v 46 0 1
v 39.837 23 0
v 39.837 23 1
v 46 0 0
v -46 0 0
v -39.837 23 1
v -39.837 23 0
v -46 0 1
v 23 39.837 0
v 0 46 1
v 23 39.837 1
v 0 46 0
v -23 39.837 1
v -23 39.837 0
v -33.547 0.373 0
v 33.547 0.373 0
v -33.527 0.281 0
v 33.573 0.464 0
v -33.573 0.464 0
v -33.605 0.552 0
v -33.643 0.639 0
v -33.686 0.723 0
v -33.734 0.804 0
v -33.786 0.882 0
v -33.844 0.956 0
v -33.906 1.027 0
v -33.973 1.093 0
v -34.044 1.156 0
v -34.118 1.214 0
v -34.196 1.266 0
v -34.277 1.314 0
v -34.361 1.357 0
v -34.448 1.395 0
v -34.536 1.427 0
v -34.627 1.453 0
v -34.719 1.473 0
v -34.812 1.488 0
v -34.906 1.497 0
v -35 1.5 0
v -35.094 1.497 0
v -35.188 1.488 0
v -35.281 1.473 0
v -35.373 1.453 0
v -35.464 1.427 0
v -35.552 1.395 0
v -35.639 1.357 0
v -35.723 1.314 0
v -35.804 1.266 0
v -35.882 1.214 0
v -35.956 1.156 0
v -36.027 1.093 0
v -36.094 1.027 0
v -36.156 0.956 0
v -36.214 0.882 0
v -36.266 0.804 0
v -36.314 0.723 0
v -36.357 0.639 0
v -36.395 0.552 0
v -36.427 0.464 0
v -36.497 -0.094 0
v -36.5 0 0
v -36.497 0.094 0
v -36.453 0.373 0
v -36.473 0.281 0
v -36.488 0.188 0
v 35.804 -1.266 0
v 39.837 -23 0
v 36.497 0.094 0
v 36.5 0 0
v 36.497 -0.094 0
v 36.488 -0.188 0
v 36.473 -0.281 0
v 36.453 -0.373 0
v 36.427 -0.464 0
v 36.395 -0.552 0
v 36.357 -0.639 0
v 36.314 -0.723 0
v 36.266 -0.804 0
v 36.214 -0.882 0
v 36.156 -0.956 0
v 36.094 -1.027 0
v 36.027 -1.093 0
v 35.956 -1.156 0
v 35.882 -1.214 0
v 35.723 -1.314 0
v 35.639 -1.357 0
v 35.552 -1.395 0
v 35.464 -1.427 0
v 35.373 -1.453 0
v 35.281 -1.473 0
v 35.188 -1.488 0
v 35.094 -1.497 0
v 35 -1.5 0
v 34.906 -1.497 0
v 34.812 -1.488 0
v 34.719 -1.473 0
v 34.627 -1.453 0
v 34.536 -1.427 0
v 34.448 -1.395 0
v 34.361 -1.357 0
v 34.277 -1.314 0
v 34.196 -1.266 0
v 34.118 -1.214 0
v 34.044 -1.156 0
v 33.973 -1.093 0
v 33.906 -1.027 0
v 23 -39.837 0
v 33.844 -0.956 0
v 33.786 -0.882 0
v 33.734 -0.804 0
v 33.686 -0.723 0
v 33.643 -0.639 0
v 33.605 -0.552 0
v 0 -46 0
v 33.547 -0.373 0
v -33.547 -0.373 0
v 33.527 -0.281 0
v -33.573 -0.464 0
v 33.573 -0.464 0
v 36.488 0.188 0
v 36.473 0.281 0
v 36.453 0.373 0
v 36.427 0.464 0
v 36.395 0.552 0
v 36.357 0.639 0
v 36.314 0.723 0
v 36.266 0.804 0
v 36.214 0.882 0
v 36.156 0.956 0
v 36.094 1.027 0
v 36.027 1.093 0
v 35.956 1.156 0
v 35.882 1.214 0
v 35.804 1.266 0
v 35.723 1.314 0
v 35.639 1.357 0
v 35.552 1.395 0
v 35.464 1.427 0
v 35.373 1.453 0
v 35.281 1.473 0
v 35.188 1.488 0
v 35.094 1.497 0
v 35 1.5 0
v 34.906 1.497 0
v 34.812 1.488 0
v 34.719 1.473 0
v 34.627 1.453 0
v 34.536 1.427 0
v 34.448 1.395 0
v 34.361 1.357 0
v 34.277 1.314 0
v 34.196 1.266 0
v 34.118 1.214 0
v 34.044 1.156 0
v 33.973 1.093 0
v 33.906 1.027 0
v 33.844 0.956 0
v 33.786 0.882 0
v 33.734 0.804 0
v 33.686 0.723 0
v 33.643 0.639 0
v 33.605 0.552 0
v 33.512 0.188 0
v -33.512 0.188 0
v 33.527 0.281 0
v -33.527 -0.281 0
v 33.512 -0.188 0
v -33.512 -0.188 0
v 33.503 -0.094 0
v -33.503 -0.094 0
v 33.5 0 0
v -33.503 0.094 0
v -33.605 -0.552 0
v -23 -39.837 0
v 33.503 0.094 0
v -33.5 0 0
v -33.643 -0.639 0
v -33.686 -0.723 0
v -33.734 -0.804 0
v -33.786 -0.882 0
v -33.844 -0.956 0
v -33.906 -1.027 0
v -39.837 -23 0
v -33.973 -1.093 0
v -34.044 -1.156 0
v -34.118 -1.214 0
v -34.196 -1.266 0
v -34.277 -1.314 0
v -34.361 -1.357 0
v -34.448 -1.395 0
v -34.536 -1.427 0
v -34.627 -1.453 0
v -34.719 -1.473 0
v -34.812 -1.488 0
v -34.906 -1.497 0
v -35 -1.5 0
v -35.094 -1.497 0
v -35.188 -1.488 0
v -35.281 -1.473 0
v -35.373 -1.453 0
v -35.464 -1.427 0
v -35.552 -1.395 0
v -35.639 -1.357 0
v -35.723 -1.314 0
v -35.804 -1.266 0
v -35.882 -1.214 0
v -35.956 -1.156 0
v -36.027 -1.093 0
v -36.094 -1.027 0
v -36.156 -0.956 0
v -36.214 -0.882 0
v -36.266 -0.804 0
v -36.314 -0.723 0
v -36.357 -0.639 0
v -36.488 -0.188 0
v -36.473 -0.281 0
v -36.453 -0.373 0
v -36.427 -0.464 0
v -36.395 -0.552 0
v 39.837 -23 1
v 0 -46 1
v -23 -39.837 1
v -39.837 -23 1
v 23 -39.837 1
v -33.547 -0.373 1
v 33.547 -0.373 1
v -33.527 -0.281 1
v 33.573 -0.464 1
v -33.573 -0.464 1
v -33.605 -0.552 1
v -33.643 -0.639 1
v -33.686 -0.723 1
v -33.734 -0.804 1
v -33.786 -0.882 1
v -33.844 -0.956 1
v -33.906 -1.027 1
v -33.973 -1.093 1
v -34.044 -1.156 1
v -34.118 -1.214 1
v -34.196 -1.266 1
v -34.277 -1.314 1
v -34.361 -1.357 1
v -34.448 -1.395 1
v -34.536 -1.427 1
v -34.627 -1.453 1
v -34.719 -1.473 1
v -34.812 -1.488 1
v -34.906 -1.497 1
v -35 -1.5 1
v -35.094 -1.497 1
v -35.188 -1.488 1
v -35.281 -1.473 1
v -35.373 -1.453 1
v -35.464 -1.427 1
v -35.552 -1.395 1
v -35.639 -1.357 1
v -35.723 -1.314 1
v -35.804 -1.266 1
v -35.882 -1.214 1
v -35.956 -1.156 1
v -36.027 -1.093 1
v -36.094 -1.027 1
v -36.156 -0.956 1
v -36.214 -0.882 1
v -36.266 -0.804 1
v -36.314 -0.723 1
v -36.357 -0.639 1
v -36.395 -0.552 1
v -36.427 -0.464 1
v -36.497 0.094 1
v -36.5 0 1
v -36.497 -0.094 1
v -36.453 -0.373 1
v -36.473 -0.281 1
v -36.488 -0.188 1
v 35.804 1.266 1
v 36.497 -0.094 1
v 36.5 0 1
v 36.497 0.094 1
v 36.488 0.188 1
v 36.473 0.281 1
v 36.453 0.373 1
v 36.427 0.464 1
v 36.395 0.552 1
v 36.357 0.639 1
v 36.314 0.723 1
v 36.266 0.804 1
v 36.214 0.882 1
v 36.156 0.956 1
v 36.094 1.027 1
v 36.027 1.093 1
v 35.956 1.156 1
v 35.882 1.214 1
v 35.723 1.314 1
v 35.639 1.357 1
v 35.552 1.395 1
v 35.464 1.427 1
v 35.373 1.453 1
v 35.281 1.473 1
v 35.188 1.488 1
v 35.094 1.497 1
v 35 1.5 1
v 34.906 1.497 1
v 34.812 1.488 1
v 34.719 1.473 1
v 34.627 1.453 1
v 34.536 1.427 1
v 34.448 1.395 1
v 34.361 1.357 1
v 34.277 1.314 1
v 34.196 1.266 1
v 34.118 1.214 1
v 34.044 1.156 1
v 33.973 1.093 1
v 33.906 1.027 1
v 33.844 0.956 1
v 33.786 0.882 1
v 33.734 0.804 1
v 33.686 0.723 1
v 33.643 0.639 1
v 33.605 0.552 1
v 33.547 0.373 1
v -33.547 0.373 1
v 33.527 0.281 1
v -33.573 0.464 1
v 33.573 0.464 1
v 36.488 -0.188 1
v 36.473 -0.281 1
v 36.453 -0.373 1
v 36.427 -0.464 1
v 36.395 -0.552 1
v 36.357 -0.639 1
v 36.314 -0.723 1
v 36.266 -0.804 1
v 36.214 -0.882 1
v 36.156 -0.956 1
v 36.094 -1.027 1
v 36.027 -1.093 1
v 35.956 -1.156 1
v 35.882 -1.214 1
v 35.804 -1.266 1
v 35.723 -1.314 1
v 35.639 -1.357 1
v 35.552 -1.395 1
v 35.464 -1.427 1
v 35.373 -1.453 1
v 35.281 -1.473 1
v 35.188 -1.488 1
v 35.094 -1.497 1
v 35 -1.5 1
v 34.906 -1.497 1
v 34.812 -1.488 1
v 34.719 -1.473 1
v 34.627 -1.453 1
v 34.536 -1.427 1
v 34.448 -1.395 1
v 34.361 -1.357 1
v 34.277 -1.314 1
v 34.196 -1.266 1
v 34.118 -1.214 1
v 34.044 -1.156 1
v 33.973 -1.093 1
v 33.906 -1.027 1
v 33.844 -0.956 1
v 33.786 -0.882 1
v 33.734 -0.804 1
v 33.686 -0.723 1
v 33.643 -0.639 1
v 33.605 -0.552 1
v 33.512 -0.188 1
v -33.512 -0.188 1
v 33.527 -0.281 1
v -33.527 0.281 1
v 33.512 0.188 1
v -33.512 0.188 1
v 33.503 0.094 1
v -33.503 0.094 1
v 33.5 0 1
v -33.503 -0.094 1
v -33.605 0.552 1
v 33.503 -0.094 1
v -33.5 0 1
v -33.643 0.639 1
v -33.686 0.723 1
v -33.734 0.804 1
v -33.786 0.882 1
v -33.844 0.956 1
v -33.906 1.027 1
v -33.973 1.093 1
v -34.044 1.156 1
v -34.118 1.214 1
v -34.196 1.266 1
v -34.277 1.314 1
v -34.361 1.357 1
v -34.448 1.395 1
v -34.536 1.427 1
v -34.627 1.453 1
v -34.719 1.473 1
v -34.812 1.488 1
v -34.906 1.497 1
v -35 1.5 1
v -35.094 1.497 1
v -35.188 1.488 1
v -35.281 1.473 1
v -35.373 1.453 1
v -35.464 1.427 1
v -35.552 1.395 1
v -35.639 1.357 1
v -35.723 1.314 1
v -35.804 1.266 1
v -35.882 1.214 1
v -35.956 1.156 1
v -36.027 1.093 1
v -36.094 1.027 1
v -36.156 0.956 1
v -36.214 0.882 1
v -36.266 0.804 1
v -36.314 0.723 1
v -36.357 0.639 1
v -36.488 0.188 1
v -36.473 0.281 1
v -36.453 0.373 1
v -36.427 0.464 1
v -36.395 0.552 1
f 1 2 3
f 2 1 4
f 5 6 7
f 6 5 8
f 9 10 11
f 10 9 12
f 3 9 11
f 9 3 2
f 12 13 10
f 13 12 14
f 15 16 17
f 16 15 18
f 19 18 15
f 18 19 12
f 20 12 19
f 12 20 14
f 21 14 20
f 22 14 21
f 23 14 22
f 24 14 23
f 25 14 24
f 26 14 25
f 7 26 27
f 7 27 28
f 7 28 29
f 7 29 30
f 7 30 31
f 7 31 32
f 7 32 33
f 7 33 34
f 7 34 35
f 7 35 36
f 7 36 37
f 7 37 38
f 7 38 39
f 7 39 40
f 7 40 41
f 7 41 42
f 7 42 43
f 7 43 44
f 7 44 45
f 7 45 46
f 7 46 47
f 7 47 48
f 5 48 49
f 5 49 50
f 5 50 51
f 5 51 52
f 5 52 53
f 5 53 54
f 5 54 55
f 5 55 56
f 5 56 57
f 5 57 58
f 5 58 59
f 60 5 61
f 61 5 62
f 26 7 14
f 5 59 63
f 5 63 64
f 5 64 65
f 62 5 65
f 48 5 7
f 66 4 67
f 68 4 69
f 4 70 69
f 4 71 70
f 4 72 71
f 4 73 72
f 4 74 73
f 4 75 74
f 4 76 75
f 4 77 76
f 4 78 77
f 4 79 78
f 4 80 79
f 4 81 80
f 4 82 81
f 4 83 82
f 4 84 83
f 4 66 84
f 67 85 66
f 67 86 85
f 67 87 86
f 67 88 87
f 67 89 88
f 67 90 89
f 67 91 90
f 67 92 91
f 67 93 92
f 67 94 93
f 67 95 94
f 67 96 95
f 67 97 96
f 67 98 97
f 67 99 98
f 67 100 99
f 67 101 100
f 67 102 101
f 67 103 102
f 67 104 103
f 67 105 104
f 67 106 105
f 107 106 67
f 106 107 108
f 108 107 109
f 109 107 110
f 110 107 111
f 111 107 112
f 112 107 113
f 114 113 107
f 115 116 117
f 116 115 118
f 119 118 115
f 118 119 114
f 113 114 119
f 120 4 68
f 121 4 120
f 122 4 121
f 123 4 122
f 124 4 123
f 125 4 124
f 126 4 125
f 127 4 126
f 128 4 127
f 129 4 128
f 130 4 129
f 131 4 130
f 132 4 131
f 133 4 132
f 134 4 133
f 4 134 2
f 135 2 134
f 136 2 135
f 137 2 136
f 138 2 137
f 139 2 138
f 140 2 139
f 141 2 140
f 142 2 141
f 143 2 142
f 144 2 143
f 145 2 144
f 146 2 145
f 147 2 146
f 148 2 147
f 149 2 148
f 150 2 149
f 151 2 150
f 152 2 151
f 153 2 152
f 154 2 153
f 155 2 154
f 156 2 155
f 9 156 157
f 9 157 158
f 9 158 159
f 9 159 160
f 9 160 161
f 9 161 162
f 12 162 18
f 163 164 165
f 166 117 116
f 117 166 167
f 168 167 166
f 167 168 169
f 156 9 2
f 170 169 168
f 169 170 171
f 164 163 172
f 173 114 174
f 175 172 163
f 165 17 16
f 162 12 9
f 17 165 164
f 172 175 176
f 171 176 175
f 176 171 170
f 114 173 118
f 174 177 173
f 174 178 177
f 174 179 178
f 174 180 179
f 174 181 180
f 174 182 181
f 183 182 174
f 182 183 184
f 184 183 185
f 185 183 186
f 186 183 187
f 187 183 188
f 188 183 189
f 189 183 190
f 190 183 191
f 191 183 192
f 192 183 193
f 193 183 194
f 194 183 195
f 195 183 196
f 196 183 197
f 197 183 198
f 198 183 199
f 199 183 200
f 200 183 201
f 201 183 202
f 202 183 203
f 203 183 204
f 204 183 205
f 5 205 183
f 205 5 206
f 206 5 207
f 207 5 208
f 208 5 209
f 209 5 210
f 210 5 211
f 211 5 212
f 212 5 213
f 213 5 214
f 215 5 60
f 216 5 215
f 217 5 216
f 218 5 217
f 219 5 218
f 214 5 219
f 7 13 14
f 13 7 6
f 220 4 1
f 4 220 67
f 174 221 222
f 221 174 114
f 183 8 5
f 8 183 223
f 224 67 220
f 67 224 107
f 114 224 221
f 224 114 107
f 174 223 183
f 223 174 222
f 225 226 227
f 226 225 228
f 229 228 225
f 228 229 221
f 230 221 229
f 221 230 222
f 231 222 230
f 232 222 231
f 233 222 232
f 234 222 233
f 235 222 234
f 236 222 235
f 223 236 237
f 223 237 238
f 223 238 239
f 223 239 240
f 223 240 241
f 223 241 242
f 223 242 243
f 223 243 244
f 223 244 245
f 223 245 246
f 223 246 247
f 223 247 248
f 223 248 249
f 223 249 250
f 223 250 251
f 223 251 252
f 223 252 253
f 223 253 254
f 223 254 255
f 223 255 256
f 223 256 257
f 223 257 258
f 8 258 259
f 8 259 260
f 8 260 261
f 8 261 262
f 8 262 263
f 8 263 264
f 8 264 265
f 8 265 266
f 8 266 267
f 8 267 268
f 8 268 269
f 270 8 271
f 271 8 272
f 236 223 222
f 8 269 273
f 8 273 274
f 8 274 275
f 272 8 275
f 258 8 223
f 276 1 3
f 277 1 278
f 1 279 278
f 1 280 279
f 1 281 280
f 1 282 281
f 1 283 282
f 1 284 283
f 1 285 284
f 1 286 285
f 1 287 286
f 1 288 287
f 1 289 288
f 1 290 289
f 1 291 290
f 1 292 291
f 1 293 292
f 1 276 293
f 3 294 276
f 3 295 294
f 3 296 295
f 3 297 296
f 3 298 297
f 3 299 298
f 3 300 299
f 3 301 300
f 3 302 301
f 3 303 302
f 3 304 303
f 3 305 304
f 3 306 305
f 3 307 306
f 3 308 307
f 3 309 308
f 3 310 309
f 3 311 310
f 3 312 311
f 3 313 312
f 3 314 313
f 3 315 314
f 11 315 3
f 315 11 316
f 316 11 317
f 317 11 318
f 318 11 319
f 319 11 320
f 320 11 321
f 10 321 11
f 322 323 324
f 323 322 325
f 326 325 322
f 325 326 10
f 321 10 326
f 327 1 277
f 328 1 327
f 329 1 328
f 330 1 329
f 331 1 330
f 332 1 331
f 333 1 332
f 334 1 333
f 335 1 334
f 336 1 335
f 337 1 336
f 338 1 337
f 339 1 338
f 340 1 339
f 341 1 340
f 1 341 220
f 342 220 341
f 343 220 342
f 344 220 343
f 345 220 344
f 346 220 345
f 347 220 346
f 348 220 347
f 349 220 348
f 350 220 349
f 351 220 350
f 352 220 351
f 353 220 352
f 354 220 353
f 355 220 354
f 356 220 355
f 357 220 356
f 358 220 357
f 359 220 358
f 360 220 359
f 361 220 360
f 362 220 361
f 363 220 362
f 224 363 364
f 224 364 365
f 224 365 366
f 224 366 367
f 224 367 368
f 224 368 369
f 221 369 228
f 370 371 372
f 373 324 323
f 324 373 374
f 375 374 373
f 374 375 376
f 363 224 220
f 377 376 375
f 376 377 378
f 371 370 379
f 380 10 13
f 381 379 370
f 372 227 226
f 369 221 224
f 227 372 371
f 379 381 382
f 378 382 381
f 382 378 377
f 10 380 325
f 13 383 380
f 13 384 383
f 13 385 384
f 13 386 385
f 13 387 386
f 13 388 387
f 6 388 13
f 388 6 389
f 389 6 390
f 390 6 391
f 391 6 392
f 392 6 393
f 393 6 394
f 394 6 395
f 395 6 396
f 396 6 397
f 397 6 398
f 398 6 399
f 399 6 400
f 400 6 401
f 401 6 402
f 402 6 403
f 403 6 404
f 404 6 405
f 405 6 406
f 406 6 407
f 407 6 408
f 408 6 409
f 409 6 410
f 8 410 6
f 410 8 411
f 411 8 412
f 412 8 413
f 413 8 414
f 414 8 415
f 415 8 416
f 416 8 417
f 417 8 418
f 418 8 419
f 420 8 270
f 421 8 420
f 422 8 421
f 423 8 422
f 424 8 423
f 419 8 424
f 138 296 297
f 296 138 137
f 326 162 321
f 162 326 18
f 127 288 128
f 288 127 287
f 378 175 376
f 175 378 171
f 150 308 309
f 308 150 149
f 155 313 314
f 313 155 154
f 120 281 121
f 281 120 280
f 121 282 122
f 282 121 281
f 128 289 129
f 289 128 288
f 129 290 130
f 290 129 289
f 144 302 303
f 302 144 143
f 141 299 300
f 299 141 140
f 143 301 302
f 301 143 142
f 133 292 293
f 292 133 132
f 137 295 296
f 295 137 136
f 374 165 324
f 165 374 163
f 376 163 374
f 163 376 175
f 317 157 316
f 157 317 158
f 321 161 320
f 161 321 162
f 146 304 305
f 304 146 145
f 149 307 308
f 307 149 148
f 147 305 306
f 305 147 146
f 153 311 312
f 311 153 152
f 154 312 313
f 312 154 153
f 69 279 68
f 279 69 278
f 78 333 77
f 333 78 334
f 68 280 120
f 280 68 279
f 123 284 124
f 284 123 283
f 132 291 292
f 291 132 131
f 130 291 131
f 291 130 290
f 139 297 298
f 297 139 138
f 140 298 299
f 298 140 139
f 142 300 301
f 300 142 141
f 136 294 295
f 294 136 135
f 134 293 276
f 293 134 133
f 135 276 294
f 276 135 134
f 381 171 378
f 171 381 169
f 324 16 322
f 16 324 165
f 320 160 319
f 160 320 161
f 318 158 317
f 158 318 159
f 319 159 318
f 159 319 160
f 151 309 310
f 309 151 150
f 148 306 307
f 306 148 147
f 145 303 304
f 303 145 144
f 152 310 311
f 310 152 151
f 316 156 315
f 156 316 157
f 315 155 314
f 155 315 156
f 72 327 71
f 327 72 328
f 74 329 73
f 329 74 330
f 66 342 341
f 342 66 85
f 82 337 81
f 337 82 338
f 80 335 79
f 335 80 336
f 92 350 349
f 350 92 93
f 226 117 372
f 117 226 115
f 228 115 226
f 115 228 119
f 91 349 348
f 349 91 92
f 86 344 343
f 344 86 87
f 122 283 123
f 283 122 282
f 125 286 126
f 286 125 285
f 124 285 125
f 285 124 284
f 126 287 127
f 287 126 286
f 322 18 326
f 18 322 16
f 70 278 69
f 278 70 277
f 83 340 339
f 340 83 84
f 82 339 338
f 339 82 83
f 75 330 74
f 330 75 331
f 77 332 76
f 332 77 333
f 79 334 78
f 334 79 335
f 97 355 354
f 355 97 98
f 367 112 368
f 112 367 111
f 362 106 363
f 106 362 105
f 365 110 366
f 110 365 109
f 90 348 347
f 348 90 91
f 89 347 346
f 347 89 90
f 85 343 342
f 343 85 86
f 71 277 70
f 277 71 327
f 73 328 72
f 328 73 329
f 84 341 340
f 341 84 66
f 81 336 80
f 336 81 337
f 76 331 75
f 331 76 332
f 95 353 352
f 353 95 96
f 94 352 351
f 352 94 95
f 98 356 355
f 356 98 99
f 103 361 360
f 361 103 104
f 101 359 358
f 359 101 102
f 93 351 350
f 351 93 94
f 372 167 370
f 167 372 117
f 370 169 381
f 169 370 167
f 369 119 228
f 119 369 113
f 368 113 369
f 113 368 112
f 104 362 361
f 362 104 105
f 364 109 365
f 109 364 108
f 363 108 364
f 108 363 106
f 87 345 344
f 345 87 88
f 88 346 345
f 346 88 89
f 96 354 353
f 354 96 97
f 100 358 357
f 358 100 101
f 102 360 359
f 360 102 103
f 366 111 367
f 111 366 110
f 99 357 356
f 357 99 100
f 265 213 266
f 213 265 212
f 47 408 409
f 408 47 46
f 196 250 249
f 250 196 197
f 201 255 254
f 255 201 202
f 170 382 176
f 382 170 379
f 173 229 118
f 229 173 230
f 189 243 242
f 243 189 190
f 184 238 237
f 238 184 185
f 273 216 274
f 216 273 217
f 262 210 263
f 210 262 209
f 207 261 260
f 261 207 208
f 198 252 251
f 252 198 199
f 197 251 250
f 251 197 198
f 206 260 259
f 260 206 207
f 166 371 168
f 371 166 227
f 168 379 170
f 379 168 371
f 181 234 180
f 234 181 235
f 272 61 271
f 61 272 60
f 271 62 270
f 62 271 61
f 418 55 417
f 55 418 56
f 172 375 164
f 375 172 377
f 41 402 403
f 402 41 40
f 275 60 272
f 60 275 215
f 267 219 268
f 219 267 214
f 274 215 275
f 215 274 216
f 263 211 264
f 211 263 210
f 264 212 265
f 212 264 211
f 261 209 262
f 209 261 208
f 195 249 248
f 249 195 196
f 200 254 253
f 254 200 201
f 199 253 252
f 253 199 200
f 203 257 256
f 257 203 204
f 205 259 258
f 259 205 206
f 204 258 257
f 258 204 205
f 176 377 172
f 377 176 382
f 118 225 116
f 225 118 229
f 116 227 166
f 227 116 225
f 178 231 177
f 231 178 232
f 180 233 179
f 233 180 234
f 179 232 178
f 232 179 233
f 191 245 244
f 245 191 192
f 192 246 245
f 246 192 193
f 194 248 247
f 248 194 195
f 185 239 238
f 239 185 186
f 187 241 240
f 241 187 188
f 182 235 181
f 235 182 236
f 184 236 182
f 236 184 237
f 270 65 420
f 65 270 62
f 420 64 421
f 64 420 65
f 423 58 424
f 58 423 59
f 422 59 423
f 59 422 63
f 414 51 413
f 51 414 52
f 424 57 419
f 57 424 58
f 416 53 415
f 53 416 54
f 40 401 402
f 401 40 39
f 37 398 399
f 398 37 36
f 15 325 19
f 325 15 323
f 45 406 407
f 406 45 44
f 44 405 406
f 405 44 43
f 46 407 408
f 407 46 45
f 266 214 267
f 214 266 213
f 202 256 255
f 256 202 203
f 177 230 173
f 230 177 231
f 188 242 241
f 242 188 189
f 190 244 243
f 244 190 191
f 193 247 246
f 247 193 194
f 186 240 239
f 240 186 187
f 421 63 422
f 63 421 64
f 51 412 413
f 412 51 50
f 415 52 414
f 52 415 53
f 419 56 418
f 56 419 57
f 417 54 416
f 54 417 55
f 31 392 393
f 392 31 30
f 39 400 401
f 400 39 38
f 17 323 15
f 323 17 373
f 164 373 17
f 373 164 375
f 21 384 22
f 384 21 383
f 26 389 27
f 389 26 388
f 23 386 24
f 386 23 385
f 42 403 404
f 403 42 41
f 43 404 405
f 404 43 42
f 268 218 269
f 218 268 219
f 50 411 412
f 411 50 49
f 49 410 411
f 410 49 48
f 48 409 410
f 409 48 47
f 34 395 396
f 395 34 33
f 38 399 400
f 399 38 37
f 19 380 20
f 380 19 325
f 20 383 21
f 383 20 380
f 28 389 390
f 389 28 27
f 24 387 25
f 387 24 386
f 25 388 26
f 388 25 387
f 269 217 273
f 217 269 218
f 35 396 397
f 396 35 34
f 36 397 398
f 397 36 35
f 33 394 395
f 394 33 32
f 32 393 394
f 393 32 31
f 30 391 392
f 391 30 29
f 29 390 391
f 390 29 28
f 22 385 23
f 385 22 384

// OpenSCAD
$fn = 100;

// screw hole
module screw_hole () {
        translate([35, 0, -0.1])
            cylinder(r=3/2, h=20);       
}

// the dish
difference() {
    cylinder(r=46, h=25, $fn=12); // dish itself
    
    // cut off top
    translate([0, 0, 1])
        cylinder(r=200, h=100, $fn=50);

    screw_hole();

    rotate([0, 0, 180])
        screw_hole();
}
